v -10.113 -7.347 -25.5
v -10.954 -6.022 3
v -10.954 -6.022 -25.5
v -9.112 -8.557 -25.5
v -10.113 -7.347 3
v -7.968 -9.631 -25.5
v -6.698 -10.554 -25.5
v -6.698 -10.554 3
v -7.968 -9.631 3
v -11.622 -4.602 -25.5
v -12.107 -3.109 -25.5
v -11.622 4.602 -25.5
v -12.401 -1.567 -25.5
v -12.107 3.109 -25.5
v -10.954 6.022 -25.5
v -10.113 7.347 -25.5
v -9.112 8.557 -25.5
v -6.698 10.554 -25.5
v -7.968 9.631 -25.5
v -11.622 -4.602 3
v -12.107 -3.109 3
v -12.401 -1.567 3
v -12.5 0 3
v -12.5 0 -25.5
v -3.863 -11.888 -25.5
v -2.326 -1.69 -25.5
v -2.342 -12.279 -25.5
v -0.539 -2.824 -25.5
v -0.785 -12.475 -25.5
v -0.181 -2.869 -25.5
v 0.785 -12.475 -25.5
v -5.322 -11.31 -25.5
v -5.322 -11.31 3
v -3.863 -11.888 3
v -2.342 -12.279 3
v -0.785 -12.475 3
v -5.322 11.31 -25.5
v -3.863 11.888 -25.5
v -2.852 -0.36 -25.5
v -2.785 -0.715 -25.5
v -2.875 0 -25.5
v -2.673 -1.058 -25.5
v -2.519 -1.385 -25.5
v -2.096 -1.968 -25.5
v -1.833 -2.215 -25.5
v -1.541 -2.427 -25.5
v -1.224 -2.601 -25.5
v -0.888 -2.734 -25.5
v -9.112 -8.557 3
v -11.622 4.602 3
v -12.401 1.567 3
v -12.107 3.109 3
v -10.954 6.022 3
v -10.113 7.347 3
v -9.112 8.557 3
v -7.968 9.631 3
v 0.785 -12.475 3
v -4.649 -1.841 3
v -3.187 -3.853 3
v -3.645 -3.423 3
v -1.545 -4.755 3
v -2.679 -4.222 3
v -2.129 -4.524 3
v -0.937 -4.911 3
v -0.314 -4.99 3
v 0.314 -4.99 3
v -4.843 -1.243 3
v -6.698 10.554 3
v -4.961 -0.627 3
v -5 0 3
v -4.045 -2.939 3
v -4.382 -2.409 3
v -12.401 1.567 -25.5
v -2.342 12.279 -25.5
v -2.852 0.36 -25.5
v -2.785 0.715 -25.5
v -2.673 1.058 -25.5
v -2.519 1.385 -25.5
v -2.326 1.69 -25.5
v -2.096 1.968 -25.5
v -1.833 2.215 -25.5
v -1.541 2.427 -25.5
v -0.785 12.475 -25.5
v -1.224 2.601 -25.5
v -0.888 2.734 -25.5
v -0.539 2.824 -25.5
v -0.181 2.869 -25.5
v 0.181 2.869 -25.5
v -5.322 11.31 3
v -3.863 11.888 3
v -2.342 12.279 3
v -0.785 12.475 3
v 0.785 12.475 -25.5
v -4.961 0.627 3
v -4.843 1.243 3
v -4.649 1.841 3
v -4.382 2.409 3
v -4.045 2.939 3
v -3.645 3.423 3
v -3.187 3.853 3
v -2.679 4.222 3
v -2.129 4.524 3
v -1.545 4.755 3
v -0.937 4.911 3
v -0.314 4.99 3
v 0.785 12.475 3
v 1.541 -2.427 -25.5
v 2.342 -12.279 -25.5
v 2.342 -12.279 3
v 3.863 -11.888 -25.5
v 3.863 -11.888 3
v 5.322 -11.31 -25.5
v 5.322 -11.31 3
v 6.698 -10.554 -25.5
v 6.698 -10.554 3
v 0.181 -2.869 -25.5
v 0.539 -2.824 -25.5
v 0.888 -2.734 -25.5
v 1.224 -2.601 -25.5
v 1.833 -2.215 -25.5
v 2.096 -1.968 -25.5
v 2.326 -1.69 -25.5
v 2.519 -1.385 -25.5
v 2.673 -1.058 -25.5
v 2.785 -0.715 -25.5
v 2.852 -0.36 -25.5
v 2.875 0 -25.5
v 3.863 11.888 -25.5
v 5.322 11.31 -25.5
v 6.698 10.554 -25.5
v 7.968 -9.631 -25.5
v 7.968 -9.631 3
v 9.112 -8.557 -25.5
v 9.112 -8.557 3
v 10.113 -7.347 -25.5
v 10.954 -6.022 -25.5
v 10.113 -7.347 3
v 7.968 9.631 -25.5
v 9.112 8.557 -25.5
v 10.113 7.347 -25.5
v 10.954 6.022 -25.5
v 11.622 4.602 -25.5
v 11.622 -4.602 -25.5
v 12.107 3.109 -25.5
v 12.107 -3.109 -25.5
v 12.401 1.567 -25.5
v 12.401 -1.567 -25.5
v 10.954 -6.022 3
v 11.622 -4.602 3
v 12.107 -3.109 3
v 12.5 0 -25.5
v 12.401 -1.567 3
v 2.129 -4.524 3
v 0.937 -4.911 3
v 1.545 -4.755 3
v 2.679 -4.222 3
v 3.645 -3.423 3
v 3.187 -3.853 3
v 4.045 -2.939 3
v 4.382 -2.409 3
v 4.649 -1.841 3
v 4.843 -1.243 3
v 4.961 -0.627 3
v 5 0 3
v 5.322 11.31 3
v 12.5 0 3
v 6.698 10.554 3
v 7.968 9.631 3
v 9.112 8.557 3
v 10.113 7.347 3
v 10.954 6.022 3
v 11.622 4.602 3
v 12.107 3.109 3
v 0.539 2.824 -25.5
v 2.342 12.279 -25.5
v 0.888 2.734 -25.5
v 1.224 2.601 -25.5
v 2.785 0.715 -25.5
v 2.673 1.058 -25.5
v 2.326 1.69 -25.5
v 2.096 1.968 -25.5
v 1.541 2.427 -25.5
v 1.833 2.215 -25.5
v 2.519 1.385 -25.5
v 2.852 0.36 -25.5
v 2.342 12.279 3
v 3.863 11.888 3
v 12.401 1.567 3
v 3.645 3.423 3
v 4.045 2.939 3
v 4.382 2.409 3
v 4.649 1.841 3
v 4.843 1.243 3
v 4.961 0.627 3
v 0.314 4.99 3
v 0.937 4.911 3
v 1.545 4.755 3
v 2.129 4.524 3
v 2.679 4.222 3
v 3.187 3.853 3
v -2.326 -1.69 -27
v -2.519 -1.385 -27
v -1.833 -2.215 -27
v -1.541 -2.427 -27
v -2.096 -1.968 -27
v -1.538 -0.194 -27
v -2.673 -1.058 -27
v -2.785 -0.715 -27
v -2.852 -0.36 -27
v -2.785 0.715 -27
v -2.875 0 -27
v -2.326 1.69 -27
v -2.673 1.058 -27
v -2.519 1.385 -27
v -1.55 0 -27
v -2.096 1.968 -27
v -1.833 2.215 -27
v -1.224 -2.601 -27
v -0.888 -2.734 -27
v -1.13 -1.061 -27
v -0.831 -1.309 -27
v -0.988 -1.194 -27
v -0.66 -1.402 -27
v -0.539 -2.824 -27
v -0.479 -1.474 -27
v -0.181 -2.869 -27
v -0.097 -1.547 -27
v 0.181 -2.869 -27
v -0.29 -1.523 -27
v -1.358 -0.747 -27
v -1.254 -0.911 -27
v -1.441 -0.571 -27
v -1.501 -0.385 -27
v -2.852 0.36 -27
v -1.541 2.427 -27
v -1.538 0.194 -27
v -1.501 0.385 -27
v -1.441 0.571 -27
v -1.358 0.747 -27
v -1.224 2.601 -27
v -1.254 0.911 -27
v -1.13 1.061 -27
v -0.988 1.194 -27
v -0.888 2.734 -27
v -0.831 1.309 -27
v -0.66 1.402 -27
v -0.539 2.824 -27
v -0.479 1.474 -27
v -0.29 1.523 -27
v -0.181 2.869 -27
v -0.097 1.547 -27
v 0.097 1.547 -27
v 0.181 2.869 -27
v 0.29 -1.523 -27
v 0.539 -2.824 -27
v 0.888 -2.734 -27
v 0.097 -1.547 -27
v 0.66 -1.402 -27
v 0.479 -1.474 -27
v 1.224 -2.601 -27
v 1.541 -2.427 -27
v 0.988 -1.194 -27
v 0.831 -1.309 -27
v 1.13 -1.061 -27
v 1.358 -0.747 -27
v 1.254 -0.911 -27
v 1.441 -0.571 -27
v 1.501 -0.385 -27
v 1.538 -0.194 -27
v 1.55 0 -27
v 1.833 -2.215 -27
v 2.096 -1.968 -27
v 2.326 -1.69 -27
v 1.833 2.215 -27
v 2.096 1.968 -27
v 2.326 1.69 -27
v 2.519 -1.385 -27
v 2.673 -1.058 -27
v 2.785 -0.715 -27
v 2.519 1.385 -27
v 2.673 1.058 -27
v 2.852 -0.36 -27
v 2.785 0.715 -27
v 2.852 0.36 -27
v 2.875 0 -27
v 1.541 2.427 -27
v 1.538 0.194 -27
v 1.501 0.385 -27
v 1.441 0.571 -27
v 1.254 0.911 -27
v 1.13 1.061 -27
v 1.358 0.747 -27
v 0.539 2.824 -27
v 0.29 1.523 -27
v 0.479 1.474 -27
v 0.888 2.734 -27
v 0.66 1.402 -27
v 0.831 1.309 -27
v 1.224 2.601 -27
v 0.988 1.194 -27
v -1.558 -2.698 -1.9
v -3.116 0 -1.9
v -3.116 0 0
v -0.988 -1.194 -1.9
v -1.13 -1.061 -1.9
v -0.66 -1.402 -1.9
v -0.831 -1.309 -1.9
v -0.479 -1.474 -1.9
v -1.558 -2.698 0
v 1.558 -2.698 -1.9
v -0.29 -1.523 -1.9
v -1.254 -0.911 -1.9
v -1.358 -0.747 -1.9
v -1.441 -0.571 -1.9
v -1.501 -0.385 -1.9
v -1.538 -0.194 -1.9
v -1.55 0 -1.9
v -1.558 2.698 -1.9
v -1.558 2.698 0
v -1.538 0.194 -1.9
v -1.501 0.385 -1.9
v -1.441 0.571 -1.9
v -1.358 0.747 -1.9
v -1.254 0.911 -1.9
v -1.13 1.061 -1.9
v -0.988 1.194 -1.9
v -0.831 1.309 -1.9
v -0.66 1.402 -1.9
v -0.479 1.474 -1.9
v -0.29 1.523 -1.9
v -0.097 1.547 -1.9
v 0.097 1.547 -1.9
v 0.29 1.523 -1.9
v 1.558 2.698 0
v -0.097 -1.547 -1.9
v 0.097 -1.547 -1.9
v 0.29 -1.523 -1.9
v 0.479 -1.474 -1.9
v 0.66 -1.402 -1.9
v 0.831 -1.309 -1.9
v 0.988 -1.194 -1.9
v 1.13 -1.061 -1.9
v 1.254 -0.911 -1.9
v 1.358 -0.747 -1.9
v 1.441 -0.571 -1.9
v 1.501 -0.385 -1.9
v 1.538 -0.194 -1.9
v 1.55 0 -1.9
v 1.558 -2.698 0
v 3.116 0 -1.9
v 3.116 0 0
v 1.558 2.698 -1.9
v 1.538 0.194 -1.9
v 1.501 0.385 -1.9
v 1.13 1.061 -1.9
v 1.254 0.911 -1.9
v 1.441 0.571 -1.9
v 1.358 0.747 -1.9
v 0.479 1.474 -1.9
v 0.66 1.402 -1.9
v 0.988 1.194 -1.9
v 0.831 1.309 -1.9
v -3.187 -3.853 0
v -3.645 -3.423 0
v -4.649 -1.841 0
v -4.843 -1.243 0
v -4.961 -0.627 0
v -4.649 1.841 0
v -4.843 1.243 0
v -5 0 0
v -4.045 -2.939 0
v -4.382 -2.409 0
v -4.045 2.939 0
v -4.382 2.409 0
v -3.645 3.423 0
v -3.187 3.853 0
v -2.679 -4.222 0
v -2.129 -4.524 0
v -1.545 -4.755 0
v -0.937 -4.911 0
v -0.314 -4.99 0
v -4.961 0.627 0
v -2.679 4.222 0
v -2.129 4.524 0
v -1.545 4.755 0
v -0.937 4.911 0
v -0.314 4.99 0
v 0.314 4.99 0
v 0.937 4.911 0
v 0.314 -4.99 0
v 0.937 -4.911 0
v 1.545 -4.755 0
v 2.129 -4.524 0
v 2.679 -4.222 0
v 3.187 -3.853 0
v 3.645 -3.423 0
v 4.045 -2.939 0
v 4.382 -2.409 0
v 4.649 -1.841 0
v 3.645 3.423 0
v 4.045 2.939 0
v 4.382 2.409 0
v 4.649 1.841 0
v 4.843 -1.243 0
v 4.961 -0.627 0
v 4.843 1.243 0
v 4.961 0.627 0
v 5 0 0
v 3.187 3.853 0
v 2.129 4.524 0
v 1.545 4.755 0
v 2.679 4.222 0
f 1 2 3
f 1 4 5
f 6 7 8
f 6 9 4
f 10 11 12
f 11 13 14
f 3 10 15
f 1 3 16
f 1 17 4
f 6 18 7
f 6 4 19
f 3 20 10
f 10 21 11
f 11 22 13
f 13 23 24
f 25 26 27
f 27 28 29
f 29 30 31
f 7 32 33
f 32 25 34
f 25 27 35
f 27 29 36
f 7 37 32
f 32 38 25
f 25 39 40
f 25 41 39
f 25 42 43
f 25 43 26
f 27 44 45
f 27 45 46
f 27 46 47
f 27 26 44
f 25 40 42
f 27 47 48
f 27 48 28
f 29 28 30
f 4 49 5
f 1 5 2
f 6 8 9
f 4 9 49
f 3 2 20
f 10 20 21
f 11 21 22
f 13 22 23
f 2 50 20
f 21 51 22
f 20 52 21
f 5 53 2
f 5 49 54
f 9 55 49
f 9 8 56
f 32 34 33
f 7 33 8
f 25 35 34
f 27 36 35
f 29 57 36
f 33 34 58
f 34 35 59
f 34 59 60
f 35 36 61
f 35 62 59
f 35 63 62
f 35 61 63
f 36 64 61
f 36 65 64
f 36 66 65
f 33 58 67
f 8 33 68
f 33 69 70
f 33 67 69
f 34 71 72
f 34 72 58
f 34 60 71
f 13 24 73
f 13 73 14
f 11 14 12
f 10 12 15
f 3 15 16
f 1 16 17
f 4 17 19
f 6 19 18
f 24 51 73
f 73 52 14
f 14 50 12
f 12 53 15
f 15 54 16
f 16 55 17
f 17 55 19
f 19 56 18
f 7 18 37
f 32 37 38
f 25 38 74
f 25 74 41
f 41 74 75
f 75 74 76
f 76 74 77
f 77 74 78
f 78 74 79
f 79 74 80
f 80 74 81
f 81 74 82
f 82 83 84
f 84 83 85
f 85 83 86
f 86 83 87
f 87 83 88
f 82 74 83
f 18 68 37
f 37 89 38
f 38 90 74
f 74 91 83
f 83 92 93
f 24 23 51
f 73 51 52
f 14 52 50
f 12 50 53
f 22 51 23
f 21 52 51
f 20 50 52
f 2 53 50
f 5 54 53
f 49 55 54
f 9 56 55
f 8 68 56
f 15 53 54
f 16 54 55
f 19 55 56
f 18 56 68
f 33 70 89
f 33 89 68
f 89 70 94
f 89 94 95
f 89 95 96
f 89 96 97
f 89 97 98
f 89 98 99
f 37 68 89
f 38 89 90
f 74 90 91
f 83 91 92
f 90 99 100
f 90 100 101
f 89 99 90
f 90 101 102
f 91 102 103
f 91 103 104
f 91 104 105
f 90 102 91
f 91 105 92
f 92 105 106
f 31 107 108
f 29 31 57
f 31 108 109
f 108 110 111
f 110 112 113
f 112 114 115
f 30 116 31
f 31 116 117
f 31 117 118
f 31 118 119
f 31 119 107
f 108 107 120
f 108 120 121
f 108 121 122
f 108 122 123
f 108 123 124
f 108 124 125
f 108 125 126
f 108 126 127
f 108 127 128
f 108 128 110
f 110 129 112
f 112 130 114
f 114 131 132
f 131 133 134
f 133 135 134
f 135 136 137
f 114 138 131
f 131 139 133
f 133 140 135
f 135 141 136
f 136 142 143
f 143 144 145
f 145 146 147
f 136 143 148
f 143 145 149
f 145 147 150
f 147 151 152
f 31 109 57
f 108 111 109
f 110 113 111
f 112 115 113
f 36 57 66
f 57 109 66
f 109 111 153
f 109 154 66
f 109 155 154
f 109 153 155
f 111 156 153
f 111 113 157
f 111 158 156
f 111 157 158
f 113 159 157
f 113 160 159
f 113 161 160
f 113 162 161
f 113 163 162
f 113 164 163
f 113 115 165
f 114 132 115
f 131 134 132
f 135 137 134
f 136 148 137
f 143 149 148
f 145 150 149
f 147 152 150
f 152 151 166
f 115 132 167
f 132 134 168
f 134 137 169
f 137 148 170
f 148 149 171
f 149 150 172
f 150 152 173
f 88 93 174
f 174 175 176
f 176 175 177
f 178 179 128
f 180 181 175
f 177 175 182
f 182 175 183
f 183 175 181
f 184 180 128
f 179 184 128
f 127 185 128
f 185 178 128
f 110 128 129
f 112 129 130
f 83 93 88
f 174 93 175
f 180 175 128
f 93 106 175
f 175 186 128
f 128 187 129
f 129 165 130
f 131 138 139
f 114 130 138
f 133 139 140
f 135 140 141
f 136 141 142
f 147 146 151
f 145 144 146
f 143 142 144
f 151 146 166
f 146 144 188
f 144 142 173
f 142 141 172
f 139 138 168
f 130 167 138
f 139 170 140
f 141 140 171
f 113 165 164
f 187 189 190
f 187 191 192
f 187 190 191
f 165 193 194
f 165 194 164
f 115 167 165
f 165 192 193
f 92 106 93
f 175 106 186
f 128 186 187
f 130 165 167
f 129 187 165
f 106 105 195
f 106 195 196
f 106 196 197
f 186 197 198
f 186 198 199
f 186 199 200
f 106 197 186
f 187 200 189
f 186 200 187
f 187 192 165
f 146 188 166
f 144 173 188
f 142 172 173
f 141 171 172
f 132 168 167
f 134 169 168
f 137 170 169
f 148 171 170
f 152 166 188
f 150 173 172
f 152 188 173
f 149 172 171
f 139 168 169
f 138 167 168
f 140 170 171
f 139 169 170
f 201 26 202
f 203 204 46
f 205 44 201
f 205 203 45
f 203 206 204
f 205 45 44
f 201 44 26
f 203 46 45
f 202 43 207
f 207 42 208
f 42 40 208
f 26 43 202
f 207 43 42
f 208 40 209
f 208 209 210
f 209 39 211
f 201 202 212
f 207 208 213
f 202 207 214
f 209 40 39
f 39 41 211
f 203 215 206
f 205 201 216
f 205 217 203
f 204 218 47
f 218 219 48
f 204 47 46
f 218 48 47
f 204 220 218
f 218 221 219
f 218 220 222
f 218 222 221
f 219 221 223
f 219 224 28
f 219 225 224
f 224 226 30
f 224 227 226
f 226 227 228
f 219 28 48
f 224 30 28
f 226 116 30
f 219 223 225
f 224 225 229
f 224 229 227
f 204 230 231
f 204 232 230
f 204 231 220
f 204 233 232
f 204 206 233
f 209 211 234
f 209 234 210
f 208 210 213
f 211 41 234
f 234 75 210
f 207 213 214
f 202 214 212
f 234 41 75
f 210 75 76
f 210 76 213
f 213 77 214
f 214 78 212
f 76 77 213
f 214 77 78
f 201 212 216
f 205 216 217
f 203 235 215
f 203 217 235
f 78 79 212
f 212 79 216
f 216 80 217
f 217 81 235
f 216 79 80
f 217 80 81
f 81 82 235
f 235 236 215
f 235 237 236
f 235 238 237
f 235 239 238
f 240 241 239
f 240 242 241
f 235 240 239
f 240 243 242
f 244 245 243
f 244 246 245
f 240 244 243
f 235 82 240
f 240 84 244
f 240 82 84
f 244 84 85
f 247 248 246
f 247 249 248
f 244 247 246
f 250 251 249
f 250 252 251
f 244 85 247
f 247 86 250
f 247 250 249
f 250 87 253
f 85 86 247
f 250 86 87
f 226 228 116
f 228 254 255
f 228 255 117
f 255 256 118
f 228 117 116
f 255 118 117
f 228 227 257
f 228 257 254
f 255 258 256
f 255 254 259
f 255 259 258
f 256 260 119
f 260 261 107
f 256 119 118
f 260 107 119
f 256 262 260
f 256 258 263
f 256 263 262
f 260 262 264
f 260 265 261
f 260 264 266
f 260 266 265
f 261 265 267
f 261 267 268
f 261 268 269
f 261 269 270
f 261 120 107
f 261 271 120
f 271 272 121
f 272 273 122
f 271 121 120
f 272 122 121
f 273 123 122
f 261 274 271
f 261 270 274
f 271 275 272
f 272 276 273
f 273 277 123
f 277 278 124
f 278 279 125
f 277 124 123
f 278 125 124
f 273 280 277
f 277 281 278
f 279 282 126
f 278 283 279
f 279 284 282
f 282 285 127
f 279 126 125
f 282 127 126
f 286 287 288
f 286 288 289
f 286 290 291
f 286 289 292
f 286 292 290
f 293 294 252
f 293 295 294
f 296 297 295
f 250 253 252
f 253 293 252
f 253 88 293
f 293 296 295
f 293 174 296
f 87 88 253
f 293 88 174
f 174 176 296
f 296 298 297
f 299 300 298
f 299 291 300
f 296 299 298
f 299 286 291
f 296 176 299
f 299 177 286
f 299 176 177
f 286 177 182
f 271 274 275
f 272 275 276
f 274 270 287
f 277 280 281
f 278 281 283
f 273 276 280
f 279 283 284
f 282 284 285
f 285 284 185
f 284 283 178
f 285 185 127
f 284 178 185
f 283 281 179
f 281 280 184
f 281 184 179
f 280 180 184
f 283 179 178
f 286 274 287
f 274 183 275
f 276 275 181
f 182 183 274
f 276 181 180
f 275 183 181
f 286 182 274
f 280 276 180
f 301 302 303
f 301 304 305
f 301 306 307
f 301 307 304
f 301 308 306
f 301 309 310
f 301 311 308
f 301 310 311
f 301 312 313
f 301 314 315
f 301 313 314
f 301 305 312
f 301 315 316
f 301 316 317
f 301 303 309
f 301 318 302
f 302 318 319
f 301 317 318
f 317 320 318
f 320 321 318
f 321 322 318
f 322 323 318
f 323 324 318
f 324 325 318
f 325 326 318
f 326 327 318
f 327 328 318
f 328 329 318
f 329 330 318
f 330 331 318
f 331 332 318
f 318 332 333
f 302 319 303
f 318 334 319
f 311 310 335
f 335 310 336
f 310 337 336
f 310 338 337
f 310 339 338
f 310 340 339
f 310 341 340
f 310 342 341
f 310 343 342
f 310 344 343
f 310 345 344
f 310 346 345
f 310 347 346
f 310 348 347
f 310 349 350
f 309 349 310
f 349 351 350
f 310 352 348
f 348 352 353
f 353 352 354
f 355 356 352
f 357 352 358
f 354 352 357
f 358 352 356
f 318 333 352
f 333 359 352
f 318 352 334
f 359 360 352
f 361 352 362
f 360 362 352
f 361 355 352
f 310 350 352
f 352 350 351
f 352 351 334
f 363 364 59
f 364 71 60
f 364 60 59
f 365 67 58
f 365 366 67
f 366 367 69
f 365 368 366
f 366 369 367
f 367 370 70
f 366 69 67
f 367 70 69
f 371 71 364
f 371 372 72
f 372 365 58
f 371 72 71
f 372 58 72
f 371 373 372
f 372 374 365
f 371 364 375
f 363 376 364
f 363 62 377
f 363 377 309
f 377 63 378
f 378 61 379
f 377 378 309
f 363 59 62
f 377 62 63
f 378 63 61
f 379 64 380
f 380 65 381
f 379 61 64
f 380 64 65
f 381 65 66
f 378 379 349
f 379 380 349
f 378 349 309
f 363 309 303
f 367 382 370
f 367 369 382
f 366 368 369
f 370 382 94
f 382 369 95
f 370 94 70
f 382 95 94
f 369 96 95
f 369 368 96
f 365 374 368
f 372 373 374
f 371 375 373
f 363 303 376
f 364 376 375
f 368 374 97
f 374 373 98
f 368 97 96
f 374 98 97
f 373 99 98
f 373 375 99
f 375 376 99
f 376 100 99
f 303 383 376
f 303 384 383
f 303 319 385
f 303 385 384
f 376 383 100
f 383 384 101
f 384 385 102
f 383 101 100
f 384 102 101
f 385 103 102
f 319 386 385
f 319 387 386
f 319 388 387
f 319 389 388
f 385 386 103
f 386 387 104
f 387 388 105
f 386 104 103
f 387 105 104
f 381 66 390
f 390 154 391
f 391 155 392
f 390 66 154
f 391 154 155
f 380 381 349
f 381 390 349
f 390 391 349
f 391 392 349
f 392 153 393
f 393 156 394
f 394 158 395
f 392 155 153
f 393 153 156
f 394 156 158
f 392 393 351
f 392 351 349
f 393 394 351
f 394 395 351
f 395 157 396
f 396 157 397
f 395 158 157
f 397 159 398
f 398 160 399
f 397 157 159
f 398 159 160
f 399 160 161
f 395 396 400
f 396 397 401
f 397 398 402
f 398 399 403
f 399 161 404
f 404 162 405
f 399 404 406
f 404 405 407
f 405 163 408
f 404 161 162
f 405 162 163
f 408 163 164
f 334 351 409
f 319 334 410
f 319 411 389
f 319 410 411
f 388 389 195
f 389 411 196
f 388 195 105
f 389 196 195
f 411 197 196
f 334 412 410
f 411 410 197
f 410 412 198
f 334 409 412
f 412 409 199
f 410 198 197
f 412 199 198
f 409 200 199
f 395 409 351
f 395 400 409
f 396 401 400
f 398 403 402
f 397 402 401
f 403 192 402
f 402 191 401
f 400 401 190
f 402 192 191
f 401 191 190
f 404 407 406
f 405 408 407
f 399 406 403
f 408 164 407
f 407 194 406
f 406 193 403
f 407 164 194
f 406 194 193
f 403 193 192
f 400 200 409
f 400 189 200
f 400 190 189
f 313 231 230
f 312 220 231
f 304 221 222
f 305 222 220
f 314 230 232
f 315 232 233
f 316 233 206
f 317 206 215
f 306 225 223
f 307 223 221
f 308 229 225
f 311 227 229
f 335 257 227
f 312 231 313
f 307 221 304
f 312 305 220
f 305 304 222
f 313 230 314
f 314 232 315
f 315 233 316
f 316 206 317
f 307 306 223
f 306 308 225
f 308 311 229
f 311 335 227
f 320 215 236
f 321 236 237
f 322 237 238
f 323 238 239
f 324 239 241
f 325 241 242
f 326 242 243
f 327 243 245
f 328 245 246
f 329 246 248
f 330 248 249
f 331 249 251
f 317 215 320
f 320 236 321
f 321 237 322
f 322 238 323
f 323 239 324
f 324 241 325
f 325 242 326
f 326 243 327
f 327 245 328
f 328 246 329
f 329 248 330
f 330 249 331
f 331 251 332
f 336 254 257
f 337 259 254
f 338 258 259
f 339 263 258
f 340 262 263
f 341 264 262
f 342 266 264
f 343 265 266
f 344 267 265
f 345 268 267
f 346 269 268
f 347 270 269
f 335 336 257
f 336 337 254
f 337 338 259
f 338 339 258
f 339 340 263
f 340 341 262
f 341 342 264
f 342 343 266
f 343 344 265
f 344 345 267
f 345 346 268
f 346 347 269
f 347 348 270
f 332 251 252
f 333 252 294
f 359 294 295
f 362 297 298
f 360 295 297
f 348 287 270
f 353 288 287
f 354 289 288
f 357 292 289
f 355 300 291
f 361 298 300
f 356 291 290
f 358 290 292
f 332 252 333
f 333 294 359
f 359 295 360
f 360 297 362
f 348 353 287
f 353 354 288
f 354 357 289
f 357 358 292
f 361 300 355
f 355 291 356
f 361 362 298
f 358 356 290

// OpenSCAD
$fn = 50;

difference() {
	union() {
		translate(v = [0, 0, -25.5]) {
			cylinder(h = 28.5, r = 12.5);
		}
		#translate(v = [0, 0, -27.0]) {
			cylinder(h = 27, r = 2.875);
		}
	}
	union() {
		translate(v = [0, 0, 0]) {
			rotate(a = [0, 0, 0]) {
				difference() {
					union() {
						translate(v = [0, 0, -1.9]) {
							linear_extrude(height = 1.9) {
								polygon(points = [[3.1158, 0.0], [1.5579000000000005, 2.698361953111554], [-1.5578999999999994, 2.6983619531115544], [-3.1158, 3.815754496783323e-16], [-1.5579000000000014, -2.6983619531115535], [1.557899999999998, -2.6983619531115552]]);
							}
						}
					}
					union();
				}
			}
		}
		#cylinder(h = 3, r = 5.0);
		#translate(v = [0, 0, -100.0]) {
			cylinder(h = 200, r = 1.55);
		}
	}
}
